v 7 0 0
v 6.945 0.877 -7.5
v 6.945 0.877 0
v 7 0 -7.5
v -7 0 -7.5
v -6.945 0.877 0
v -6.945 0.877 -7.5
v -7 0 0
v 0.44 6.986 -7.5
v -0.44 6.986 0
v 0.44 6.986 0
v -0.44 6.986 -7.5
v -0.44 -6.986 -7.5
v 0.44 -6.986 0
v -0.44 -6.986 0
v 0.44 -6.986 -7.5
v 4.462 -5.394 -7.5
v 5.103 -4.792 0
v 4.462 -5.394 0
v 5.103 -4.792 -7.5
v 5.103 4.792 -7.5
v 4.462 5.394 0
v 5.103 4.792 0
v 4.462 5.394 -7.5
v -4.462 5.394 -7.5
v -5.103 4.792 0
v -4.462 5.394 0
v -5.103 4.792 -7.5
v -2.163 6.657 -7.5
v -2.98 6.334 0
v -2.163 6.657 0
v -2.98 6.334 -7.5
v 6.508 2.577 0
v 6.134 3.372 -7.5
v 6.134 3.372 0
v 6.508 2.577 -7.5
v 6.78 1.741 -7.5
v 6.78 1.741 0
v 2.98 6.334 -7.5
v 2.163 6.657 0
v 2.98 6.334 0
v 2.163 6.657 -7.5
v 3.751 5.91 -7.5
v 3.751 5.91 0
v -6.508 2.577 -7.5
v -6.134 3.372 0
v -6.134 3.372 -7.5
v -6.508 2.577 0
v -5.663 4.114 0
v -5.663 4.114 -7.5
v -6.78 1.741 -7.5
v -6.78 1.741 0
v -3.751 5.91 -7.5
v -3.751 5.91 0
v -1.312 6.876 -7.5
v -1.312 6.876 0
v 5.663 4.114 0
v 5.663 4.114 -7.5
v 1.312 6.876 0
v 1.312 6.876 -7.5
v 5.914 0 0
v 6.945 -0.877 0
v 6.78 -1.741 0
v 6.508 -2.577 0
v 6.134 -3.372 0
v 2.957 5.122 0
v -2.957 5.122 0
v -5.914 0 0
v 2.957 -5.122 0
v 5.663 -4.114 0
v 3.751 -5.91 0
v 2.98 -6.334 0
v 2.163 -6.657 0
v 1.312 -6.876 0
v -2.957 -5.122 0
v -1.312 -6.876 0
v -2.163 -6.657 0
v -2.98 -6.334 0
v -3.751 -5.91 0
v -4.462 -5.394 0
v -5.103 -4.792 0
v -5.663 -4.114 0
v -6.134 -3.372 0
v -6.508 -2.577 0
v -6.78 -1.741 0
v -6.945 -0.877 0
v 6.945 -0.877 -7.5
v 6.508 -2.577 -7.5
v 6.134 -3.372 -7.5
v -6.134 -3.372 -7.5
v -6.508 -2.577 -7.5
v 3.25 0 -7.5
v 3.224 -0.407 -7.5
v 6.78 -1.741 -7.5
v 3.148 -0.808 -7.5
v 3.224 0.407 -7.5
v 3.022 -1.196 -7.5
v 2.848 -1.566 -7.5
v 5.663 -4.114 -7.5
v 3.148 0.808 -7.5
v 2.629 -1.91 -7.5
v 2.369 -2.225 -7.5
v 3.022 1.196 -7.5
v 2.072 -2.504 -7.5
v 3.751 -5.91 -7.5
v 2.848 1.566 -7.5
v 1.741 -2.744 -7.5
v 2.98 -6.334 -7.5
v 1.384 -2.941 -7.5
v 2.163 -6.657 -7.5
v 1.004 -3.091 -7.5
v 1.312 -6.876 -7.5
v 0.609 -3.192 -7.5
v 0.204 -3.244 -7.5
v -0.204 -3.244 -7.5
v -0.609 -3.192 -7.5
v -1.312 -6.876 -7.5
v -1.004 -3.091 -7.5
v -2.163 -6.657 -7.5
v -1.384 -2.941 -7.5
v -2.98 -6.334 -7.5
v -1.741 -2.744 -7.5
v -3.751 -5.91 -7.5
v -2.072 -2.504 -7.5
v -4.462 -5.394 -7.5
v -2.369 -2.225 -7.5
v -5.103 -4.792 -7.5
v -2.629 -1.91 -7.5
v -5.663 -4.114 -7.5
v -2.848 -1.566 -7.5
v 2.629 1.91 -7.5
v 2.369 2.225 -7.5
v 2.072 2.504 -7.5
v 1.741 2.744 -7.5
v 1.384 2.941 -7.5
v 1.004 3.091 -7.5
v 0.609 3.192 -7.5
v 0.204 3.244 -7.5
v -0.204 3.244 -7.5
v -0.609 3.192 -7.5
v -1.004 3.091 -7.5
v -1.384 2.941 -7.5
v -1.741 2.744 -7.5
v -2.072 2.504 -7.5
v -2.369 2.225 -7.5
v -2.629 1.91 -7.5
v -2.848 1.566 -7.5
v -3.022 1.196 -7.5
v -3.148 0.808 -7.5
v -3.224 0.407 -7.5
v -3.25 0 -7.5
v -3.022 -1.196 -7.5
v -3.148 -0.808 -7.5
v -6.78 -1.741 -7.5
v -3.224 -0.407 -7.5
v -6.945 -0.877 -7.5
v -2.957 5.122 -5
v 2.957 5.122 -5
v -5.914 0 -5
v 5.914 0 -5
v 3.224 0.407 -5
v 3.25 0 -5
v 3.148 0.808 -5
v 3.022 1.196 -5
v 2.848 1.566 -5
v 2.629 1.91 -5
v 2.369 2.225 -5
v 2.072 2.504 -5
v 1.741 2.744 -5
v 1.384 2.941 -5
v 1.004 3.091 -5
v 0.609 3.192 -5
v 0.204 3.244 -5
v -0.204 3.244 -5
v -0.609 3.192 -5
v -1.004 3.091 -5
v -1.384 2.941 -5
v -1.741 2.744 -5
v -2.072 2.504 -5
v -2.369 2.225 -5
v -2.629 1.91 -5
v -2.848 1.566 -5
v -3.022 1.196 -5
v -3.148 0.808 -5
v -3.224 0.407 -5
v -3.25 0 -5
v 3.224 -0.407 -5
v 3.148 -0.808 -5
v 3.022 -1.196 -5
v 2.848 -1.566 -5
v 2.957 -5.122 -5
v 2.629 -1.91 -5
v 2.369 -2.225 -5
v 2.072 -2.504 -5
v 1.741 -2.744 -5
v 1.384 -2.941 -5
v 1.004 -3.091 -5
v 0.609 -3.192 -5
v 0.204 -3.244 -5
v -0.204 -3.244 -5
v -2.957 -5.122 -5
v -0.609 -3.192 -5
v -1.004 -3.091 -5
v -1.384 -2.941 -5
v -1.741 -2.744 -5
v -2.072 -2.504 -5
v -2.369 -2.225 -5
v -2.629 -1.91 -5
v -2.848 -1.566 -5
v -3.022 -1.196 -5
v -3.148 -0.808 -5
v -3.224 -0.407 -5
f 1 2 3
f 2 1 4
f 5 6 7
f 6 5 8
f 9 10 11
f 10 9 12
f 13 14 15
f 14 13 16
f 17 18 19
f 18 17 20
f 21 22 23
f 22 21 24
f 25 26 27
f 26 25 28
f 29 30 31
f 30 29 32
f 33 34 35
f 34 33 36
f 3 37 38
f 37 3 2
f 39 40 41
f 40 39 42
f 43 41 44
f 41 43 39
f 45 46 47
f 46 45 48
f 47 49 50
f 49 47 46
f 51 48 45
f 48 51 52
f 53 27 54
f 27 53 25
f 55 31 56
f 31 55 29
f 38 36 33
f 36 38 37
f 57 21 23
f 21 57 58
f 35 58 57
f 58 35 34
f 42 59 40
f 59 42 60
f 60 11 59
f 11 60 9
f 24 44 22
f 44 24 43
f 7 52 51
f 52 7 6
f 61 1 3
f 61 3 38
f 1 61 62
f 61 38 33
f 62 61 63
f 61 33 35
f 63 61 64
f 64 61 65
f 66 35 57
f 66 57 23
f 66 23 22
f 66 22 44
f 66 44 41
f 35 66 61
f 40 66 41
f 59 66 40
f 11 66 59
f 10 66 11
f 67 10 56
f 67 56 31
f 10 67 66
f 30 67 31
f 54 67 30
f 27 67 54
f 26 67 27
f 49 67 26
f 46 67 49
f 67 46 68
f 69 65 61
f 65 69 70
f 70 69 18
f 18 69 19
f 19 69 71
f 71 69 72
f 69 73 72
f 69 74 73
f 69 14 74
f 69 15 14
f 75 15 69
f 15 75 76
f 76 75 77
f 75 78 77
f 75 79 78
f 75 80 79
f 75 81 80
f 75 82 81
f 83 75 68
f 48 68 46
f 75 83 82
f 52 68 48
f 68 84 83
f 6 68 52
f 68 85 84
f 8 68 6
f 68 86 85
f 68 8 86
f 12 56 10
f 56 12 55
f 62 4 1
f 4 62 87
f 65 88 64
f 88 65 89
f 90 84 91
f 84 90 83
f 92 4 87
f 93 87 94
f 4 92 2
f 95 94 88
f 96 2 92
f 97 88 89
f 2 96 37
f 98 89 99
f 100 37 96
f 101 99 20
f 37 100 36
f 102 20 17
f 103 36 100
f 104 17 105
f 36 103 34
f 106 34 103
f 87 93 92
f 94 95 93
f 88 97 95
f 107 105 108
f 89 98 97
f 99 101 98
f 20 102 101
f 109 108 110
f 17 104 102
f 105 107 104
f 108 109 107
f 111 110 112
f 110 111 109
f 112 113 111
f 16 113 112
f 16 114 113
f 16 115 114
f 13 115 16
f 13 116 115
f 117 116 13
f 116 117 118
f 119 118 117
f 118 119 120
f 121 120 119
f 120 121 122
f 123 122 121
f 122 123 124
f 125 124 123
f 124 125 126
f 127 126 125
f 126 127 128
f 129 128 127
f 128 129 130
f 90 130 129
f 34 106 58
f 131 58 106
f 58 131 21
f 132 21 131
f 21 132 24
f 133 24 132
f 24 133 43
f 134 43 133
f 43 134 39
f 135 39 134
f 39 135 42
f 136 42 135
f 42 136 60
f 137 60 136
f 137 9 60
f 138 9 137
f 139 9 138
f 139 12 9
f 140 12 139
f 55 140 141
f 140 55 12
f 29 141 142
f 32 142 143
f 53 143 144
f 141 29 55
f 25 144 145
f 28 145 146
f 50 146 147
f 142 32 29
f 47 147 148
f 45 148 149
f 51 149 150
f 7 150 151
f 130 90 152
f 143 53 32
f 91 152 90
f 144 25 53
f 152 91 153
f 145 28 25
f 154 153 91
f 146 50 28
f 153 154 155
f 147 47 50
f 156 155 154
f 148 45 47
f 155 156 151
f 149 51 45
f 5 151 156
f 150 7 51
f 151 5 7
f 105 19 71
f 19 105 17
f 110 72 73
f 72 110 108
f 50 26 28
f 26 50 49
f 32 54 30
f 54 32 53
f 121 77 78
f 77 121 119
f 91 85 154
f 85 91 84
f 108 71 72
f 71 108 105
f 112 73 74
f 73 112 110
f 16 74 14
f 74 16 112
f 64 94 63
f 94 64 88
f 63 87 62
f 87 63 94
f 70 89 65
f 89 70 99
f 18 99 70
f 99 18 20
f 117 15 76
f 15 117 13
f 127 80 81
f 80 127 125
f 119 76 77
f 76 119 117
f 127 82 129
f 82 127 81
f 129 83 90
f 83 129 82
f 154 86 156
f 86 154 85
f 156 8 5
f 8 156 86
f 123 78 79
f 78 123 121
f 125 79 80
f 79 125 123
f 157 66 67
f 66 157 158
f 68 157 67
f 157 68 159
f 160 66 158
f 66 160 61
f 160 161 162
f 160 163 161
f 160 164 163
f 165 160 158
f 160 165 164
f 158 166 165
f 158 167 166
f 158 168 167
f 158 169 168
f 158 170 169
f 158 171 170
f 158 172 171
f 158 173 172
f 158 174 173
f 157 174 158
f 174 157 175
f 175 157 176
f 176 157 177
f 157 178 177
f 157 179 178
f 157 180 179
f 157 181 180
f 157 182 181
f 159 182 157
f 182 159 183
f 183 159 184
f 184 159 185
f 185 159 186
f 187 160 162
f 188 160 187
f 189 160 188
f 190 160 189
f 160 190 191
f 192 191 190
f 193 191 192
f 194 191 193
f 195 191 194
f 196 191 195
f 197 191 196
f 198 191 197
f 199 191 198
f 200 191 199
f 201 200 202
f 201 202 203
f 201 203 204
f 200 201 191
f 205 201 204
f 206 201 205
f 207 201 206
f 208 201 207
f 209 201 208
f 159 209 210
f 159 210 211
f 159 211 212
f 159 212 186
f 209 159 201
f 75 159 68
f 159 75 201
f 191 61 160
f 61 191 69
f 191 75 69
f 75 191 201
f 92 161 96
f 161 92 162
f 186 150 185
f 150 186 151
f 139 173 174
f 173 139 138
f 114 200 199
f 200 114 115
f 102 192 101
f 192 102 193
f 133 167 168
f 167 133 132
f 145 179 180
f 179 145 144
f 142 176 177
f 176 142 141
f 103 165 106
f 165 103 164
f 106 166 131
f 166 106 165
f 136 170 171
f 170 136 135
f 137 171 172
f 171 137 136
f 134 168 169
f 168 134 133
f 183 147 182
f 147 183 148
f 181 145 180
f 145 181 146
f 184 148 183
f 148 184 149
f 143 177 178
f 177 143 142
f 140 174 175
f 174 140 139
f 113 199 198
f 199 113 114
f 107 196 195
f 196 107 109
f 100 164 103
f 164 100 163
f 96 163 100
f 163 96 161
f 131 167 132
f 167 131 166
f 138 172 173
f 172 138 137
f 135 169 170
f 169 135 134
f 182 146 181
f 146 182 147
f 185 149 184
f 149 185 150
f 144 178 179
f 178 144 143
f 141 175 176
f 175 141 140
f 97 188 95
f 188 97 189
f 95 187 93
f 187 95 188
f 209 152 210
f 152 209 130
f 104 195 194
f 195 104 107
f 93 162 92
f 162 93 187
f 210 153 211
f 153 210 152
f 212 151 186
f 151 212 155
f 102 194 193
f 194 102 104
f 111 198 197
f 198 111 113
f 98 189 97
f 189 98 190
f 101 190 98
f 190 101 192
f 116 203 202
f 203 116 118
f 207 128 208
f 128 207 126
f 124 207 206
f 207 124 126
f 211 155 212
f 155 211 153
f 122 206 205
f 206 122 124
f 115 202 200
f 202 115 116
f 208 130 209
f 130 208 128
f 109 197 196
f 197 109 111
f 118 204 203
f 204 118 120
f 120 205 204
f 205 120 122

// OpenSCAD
$fn = 50;


difference() {
	union() {
		translate(v = [0, 0, -7.5000000000]) {
			cylinder(h = 7.5000000000, r = 7.0000000000);
		}
		translate(v = [0, 0, -9.0000000000]) {
			cylinder(h = 9, r = 2.8750000000);
		}
	}
	union() {
		translate(v = [0, 0, 0]) {
			rotate(a = [0, 0, 0]) {
				difference() {
					union() {
						translate(v = [0, 0, -5]) {
							linear_extrude(height = 5) {
								polygon(points = [[5.9142500000, 0.0000000000], [2.9571250000, 5.1218907443], [-2.9571250000, 5.1218907443], [-5.9142500000, 0.0000000000], [-2.9571250000, -5.1218907443], [2.9571250000, -5.1218907443]]);
							}
						}
					}
					union();
				}
			}
		}
		#translate(v = [0, 0, -100.0000000000]) {
			cylinder(h = 200, r = 3.2500000000);
		}
	}
}
